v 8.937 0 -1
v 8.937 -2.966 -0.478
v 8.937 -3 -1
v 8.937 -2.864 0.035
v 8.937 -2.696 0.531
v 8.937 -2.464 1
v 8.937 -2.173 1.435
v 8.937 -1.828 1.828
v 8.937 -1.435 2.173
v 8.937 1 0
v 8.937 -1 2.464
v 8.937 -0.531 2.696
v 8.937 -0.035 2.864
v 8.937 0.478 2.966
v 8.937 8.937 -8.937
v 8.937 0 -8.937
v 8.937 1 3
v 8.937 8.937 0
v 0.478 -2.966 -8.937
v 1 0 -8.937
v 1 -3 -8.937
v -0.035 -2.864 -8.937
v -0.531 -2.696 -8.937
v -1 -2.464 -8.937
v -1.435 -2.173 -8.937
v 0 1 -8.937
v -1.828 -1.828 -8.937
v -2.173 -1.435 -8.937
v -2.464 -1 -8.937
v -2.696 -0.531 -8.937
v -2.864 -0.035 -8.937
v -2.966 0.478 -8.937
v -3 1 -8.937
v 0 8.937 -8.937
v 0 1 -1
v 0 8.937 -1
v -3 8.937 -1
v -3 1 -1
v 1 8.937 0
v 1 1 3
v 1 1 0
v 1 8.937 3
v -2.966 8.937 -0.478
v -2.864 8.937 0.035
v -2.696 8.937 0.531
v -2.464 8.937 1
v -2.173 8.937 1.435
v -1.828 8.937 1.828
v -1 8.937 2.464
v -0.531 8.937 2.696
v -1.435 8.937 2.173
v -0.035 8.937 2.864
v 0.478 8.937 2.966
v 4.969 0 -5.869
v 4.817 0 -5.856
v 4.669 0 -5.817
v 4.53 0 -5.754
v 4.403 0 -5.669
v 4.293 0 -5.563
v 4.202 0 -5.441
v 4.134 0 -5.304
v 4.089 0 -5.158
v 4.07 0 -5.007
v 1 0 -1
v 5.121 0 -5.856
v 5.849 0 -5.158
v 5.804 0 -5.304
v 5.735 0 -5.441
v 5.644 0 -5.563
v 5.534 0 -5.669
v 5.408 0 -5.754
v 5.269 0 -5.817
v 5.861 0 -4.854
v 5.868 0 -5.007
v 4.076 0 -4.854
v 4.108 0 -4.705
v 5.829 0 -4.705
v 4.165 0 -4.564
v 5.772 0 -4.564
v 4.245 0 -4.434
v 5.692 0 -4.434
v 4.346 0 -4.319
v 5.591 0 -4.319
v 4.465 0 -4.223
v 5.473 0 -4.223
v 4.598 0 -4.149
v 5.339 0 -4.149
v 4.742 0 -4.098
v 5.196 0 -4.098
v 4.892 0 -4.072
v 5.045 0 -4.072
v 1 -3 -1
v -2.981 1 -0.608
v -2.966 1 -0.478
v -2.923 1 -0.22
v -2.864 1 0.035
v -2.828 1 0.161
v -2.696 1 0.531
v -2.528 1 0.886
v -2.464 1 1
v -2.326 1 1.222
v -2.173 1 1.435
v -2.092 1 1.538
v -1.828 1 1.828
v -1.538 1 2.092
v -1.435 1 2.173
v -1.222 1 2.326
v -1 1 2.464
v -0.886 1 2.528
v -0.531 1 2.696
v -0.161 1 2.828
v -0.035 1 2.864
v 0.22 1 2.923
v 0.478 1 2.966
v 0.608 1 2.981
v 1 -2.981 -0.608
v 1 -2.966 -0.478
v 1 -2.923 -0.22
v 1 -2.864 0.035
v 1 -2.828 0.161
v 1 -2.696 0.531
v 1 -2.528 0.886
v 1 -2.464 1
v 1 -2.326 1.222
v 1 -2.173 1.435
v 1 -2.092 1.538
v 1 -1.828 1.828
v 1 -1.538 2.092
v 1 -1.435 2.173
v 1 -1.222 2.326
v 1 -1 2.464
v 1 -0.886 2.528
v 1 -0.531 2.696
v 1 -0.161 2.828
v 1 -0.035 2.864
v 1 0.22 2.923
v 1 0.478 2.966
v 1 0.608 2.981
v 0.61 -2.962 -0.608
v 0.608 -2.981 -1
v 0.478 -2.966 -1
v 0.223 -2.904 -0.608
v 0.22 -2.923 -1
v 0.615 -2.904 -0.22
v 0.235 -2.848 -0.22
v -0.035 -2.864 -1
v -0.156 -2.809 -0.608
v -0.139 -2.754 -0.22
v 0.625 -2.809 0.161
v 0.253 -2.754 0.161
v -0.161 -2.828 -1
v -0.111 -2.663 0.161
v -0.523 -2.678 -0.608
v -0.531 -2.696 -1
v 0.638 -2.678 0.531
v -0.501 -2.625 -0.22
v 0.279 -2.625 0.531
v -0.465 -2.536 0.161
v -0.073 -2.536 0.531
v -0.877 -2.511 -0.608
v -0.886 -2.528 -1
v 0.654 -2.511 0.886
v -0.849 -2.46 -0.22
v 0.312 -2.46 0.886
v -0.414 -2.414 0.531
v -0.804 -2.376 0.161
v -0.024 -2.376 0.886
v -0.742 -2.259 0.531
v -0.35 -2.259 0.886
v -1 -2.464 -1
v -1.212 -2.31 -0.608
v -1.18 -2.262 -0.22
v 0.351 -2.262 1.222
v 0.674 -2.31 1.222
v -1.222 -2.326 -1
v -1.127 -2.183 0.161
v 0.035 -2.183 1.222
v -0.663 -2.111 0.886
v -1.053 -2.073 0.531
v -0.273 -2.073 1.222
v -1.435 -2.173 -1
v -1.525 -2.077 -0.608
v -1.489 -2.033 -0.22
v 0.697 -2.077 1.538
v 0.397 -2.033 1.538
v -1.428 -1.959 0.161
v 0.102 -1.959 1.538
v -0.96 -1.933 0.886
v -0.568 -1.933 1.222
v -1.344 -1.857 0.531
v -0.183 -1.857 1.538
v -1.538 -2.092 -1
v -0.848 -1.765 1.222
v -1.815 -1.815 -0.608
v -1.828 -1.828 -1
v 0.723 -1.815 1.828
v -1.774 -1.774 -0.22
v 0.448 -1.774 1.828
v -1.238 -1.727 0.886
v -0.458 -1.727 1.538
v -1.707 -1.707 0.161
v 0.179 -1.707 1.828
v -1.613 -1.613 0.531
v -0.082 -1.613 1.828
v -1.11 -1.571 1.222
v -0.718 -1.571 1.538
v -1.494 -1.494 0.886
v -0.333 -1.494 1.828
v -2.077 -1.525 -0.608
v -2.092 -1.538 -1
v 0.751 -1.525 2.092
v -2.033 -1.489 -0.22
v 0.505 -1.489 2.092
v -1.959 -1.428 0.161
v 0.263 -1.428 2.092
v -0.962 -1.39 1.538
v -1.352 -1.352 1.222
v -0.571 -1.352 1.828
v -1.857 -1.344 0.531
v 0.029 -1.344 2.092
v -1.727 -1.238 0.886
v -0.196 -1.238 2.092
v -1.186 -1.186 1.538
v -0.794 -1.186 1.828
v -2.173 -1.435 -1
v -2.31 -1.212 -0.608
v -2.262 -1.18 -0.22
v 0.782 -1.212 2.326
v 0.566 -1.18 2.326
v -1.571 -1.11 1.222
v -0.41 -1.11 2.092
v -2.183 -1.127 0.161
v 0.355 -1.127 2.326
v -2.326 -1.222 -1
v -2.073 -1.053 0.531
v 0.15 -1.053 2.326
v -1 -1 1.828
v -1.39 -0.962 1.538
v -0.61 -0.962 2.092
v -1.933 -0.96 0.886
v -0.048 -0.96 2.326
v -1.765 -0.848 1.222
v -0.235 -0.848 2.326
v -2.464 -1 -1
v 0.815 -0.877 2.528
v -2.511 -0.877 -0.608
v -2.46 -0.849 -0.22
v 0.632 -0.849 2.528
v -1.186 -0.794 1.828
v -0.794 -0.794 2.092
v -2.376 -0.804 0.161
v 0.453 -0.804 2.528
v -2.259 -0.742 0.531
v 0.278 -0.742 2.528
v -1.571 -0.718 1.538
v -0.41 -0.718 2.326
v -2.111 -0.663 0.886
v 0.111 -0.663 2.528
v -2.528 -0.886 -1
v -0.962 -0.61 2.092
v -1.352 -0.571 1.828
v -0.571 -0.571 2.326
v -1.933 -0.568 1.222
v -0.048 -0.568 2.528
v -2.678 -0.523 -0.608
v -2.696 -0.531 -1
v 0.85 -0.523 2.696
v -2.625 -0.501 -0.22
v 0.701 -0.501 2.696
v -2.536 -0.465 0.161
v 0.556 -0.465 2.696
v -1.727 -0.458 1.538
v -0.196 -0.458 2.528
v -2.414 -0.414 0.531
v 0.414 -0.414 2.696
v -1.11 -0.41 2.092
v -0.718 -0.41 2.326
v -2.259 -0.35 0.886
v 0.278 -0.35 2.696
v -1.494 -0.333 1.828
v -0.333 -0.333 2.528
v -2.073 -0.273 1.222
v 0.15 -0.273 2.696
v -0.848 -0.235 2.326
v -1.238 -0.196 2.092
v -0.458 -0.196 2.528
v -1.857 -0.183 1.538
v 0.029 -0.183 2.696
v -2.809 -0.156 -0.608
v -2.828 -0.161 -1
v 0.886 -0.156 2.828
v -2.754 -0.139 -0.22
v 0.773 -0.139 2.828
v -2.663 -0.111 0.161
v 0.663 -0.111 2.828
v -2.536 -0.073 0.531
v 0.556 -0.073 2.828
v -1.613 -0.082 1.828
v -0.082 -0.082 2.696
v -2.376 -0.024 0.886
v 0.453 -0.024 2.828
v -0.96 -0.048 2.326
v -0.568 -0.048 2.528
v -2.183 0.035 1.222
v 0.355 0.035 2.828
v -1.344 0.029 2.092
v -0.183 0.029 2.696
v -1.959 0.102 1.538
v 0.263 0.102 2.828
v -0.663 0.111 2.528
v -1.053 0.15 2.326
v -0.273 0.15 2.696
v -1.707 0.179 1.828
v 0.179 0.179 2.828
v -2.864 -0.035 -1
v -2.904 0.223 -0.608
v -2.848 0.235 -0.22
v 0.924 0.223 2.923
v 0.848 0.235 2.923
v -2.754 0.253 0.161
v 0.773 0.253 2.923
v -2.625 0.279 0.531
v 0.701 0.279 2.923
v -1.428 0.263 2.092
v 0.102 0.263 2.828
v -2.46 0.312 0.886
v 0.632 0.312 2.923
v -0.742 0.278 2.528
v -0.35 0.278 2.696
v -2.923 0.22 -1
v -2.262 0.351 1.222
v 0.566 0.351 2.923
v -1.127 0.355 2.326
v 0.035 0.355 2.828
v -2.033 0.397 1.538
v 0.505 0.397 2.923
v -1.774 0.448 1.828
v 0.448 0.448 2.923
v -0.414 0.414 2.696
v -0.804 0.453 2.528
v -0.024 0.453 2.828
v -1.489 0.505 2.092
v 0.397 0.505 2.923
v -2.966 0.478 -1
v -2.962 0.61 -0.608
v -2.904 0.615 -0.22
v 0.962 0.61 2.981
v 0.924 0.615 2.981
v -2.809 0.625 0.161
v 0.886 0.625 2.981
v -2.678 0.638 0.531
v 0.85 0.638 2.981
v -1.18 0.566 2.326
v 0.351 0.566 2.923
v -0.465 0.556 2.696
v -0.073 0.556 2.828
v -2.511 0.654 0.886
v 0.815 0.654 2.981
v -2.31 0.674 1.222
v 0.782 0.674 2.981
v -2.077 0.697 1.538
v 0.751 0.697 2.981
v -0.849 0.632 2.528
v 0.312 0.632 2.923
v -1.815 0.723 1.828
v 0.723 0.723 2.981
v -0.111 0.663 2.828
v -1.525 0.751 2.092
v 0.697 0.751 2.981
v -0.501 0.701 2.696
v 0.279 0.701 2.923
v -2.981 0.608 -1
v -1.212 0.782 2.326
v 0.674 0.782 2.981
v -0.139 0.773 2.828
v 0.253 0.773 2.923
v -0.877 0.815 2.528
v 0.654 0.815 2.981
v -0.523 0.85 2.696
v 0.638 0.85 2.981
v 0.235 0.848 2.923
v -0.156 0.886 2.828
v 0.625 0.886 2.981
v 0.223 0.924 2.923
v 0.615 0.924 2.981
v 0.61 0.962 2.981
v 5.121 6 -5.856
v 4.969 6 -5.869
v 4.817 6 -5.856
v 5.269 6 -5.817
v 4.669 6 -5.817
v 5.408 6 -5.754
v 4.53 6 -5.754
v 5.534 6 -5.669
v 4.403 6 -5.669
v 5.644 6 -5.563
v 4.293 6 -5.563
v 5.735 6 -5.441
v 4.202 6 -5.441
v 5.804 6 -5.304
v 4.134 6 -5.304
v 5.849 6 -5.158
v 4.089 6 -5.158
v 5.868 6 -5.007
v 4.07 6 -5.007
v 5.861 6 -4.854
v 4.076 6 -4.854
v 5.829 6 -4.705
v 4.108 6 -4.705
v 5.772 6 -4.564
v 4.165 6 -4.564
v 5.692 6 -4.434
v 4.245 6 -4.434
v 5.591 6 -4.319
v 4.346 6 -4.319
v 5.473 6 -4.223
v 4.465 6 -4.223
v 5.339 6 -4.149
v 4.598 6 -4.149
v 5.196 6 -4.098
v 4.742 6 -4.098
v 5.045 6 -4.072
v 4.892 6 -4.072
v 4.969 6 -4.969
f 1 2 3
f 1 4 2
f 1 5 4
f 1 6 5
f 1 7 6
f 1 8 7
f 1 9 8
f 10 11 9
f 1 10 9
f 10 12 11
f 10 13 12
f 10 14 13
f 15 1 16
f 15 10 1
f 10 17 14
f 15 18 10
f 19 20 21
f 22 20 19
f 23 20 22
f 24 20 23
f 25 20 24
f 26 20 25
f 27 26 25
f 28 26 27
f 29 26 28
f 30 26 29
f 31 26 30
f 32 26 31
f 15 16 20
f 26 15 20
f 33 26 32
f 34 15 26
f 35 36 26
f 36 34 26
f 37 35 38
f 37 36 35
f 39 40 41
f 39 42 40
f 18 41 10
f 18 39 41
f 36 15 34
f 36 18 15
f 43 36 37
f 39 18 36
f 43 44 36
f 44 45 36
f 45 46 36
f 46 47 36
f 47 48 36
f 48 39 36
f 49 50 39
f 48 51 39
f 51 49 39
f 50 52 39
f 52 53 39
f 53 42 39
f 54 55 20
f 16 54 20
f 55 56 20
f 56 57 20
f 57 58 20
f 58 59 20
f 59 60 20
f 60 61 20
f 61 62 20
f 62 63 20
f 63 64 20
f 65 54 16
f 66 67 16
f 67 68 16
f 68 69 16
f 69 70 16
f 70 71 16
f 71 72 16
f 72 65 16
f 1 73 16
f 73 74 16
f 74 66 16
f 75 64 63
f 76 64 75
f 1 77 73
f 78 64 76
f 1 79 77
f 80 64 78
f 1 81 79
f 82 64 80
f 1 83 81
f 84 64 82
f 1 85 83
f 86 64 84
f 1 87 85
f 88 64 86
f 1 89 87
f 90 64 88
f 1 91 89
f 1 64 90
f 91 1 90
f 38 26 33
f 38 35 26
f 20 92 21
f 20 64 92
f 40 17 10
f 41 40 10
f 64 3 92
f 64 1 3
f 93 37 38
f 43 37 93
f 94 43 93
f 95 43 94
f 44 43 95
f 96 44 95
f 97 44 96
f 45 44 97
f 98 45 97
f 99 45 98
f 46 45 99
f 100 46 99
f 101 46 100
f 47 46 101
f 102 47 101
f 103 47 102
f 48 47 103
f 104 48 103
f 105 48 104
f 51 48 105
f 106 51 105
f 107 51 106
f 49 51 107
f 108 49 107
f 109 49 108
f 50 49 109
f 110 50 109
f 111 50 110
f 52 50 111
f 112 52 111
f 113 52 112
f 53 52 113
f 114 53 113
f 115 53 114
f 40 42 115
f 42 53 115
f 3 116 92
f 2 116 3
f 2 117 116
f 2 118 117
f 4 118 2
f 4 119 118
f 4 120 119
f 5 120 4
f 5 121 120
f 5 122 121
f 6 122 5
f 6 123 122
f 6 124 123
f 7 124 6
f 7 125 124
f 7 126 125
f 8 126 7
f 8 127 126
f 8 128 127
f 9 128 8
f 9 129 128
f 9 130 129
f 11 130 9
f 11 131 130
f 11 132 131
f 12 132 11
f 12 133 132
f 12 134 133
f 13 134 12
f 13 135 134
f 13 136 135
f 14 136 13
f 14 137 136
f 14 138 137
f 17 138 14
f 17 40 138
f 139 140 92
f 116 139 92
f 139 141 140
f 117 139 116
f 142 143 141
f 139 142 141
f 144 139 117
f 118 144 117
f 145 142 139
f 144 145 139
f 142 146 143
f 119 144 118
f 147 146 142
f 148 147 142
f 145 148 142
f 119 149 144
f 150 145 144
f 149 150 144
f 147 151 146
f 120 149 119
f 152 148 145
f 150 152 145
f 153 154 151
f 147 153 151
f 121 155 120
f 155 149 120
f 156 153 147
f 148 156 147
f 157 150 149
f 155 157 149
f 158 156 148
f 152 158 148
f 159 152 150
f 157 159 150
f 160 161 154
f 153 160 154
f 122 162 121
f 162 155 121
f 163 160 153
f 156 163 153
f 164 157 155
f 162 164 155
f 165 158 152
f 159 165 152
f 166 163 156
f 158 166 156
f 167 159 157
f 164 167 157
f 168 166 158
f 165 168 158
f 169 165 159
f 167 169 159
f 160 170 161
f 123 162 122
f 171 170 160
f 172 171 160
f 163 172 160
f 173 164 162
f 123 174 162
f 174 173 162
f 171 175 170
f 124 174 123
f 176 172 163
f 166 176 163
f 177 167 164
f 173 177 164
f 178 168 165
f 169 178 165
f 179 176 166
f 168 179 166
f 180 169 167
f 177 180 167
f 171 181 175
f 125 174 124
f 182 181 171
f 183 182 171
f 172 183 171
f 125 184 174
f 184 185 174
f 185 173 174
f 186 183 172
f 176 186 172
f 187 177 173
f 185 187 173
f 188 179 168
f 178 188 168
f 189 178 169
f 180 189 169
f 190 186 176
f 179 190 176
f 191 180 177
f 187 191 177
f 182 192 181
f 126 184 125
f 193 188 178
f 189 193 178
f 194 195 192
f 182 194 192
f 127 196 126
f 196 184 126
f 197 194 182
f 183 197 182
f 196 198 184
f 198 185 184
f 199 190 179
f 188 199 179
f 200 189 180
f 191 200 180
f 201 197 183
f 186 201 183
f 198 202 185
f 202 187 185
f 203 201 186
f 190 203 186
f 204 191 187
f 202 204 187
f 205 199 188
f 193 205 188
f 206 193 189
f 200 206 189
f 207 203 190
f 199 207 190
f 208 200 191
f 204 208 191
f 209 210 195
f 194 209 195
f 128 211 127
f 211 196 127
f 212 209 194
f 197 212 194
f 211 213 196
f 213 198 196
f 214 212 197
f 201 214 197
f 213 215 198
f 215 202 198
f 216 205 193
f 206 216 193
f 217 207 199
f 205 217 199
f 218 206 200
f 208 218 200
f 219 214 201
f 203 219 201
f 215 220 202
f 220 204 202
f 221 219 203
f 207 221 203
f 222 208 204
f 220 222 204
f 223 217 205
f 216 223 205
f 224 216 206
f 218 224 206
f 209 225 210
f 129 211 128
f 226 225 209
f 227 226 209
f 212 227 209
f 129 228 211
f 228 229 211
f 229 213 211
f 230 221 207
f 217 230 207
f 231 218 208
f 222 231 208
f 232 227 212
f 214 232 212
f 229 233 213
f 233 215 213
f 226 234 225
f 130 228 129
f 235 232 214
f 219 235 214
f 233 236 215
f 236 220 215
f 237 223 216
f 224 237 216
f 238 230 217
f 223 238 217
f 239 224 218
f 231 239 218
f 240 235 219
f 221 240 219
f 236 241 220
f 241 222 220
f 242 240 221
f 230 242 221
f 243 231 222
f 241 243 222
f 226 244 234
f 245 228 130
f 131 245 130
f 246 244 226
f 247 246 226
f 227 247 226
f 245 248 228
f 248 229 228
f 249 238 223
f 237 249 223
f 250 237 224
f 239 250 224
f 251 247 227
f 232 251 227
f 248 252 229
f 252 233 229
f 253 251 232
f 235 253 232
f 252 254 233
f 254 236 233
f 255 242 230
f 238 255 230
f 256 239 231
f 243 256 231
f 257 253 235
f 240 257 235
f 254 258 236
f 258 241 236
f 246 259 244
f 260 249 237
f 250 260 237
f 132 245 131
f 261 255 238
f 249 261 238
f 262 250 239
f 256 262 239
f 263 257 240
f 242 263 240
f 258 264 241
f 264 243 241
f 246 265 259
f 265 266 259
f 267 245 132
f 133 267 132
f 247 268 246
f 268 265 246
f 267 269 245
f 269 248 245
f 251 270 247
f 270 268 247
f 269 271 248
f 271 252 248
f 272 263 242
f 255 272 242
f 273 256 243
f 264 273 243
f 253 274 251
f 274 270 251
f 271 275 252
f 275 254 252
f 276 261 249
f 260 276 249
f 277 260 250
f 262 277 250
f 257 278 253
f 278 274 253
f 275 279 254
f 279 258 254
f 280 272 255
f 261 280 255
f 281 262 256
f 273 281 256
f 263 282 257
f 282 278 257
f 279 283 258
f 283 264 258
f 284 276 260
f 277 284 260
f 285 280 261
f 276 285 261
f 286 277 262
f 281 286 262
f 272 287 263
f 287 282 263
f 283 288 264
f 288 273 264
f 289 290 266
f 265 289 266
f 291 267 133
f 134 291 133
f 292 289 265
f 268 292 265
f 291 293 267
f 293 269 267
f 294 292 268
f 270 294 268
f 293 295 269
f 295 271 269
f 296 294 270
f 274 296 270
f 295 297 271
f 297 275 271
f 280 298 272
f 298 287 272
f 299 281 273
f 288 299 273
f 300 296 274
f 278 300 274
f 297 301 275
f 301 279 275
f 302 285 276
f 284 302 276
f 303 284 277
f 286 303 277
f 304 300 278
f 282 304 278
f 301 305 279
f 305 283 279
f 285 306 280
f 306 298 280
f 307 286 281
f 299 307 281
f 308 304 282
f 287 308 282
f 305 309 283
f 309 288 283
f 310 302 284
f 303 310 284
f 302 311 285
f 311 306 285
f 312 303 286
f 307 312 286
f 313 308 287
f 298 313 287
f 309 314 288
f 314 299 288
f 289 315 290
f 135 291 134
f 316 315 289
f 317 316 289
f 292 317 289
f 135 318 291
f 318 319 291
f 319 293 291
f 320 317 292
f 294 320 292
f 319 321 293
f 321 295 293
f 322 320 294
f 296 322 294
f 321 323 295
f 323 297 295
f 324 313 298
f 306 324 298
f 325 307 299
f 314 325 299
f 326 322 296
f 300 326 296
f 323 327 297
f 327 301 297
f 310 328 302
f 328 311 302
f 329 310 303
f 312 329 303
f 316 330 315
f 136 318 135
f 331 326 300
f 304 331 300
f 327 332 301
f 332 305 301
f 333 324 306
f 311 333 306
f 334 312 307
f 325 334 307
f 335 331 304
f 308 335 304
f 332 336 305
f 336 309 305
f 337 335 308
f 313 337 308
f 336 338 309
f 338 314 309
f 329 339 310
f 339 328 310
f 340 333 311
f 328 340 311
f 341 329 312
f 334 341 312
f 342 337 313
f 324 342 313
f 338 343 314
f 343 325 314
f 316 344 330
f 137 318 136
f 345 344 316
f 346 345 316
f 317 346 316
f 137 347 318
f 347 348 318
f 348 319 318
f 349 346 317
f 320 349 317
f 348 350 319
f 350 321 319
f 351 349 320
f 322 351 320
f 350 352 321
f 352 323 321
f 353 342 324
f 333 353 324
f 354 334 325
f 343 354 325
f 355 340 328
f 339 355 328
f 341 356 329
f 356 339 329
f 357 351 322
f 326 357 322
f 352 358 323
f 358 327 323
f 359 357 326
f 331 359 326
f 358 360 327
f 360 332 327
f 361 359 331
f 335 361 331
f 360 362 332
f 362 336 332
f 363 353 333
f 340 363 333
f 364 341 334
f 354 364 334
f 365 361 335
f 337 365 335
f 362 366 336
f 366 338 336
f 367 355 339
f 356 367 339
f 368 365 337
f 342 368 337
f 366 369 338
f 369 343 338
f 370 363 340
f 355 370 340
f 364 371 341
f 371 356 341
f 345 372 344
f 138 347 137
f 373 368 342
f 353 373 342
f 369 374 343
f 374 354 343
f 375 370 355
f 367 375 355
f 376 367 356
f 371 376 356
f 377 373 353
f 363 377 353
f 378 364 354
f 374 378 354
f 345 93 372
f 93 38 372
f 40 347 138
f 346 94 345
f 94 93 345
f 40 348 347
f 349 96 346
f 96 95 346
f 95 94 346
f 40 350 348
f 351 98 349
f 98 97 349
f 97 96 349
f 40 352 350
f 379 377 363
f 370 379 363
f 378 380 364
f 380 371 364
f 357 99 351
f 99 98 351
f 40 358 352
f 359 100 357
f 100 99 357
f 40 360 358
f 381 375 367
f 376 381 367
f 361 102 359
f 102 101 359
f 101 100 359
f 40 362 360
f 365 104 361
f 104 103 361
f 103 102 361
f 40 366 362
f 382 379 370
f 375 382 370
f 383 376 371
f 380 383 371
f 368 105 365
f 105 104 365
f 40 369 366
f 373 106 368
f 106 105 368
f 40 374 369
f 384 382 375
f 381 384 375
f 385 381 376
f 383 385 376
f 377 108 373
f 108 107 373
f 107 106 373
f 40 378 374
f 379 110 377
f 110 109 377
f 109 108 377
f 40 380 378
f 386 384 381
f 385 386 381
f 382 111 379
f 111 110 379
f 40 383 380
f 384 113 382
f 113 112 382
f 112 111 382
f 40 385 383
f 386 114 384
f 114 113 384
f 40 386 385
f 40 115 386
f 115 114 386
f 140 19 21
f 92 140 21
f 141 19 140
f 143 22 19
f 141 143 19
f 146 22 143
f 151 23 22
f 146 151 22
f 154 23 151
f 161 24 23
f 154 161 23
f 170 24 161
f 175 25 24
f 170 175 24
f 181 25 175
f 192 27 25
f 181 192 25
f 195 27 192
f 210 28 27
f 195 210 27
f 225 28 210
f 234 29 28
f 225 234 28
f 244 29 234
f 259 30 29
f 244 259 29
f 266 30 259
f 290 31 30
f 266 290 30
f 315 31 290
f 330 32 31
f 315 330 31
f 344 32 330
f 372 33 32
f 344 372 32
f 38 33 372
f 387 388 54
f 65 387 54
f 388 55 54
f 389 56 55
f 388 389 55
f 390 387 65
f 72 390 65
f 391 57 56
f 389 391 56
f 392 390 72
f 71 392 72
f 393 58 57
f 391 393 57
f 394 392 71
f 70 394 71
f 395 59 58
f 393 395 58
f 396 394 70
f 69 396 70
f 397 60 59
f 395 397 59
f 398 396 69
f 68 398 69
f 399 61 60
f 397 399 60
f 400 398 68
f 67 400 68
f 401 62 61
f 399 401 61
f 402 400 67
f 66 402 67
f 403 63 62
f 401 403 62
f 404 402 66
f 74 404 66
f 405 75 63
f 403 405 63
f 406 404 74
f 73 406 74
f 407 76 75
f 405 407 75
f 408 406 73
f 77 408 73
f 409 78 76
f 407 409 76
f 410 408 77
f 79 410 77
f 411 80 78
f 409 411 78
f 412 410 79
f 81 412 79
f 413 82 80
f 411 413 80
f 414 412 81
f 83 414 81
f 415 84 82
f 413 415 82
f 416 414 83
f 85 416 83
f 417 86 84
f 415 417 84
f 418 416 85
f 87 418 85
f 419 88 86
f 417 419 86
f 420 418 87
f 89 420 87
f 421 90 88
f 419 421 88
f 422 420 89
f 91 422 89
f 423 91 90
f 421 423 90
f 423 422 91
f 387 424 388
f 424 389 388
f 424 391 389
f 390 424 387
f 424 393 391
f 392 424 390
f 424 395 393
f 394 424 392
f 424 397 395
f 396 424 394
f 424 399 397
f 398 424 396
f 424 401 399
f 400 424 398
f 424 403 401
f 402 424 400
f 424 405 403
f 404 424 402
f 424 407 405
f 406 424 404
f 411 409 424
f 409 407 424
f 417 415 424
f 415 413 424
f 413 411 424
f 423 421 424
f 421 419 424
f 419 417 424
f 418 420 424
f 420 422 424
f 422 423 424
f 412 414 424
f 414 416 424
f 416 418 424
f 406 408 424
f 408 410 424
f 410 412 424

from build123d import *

# Parameters (mm, degrees)
BOSS_EXTRUDE1_DEPTH = 8.937498
SKETCH2_W           = 4
SKETCH2_H           = 4
BOSS_EXTRUDE4_DEPTH = 8.937498
SKETCH3_W           = 4
SKETCH3_H           = 4
BOSS_EXTRUDE5_DEPTH = 11.9375
FILLET1_R           = 4
SKETCH4_R           = 0.9
CUT_EXTRUDE1_DEPTH  = 6


with BuildPart() as part:
    # Sketch1 → Boss-Extrude1 (new body)
    with BuildSketch(Plane(origin=(0, 0, 0), x_dir=(1, 0, 0), z_dir=(0, 1, 0))):
        Polygon((8.937498, 8.937498), (0, 8.937498), (0, 1), (-3, 1), (-3, -3), (1, -3), (1, 0), (8.937498, 0), align=None)
    extrude(amount=BOSS_EXTRUDE1_DEPTH)

    # Sketch2 → Boss-Extrude4 (add)
    with BuildSketch(Plane.XY):
        with Locations((-1, -1)):
            Rectangle(SKETCH2_W, SKETCH2_H)
    extrude(amount=-BOSS_EXTRUDE4_DEPTH)

    # Sketch3 → Boss-Extrude5 (add)
    with BuildSketch(Plane.ZY.offset(3)):
        with Locations((1, -1)):
            Rectangle(SKETCH3_W, SKETCH3_H)
    extrude(amount=-BOSS_EXTRUDE5_DEPTH)

    # Fillet1
    fillet1_edges = [part.edges().sort_by_distance(p)[0] for p in [
        (-3, -3, -2.968749),
        (2.96875, -3, 3),
        (-3, 2.968749, 3),
    ]]
    fillet(fillet1_edges, radius=FILLET1_R - 0.0001)  # a hair under: the kernel refuses the full size

    # Sketch4 → Cut-Extrude1 (cut)
    with BuildSketch(Plane.XZ):
        with Locations(Location((4.968749, -4.968749, 0), (0, 0, 270))):
            Circle(SKETCH4_R)
    extrude(amount=-CUT_EXTRUDE1_DEPTH, mode=Mode.SUBTRACT)


solid = part.part
